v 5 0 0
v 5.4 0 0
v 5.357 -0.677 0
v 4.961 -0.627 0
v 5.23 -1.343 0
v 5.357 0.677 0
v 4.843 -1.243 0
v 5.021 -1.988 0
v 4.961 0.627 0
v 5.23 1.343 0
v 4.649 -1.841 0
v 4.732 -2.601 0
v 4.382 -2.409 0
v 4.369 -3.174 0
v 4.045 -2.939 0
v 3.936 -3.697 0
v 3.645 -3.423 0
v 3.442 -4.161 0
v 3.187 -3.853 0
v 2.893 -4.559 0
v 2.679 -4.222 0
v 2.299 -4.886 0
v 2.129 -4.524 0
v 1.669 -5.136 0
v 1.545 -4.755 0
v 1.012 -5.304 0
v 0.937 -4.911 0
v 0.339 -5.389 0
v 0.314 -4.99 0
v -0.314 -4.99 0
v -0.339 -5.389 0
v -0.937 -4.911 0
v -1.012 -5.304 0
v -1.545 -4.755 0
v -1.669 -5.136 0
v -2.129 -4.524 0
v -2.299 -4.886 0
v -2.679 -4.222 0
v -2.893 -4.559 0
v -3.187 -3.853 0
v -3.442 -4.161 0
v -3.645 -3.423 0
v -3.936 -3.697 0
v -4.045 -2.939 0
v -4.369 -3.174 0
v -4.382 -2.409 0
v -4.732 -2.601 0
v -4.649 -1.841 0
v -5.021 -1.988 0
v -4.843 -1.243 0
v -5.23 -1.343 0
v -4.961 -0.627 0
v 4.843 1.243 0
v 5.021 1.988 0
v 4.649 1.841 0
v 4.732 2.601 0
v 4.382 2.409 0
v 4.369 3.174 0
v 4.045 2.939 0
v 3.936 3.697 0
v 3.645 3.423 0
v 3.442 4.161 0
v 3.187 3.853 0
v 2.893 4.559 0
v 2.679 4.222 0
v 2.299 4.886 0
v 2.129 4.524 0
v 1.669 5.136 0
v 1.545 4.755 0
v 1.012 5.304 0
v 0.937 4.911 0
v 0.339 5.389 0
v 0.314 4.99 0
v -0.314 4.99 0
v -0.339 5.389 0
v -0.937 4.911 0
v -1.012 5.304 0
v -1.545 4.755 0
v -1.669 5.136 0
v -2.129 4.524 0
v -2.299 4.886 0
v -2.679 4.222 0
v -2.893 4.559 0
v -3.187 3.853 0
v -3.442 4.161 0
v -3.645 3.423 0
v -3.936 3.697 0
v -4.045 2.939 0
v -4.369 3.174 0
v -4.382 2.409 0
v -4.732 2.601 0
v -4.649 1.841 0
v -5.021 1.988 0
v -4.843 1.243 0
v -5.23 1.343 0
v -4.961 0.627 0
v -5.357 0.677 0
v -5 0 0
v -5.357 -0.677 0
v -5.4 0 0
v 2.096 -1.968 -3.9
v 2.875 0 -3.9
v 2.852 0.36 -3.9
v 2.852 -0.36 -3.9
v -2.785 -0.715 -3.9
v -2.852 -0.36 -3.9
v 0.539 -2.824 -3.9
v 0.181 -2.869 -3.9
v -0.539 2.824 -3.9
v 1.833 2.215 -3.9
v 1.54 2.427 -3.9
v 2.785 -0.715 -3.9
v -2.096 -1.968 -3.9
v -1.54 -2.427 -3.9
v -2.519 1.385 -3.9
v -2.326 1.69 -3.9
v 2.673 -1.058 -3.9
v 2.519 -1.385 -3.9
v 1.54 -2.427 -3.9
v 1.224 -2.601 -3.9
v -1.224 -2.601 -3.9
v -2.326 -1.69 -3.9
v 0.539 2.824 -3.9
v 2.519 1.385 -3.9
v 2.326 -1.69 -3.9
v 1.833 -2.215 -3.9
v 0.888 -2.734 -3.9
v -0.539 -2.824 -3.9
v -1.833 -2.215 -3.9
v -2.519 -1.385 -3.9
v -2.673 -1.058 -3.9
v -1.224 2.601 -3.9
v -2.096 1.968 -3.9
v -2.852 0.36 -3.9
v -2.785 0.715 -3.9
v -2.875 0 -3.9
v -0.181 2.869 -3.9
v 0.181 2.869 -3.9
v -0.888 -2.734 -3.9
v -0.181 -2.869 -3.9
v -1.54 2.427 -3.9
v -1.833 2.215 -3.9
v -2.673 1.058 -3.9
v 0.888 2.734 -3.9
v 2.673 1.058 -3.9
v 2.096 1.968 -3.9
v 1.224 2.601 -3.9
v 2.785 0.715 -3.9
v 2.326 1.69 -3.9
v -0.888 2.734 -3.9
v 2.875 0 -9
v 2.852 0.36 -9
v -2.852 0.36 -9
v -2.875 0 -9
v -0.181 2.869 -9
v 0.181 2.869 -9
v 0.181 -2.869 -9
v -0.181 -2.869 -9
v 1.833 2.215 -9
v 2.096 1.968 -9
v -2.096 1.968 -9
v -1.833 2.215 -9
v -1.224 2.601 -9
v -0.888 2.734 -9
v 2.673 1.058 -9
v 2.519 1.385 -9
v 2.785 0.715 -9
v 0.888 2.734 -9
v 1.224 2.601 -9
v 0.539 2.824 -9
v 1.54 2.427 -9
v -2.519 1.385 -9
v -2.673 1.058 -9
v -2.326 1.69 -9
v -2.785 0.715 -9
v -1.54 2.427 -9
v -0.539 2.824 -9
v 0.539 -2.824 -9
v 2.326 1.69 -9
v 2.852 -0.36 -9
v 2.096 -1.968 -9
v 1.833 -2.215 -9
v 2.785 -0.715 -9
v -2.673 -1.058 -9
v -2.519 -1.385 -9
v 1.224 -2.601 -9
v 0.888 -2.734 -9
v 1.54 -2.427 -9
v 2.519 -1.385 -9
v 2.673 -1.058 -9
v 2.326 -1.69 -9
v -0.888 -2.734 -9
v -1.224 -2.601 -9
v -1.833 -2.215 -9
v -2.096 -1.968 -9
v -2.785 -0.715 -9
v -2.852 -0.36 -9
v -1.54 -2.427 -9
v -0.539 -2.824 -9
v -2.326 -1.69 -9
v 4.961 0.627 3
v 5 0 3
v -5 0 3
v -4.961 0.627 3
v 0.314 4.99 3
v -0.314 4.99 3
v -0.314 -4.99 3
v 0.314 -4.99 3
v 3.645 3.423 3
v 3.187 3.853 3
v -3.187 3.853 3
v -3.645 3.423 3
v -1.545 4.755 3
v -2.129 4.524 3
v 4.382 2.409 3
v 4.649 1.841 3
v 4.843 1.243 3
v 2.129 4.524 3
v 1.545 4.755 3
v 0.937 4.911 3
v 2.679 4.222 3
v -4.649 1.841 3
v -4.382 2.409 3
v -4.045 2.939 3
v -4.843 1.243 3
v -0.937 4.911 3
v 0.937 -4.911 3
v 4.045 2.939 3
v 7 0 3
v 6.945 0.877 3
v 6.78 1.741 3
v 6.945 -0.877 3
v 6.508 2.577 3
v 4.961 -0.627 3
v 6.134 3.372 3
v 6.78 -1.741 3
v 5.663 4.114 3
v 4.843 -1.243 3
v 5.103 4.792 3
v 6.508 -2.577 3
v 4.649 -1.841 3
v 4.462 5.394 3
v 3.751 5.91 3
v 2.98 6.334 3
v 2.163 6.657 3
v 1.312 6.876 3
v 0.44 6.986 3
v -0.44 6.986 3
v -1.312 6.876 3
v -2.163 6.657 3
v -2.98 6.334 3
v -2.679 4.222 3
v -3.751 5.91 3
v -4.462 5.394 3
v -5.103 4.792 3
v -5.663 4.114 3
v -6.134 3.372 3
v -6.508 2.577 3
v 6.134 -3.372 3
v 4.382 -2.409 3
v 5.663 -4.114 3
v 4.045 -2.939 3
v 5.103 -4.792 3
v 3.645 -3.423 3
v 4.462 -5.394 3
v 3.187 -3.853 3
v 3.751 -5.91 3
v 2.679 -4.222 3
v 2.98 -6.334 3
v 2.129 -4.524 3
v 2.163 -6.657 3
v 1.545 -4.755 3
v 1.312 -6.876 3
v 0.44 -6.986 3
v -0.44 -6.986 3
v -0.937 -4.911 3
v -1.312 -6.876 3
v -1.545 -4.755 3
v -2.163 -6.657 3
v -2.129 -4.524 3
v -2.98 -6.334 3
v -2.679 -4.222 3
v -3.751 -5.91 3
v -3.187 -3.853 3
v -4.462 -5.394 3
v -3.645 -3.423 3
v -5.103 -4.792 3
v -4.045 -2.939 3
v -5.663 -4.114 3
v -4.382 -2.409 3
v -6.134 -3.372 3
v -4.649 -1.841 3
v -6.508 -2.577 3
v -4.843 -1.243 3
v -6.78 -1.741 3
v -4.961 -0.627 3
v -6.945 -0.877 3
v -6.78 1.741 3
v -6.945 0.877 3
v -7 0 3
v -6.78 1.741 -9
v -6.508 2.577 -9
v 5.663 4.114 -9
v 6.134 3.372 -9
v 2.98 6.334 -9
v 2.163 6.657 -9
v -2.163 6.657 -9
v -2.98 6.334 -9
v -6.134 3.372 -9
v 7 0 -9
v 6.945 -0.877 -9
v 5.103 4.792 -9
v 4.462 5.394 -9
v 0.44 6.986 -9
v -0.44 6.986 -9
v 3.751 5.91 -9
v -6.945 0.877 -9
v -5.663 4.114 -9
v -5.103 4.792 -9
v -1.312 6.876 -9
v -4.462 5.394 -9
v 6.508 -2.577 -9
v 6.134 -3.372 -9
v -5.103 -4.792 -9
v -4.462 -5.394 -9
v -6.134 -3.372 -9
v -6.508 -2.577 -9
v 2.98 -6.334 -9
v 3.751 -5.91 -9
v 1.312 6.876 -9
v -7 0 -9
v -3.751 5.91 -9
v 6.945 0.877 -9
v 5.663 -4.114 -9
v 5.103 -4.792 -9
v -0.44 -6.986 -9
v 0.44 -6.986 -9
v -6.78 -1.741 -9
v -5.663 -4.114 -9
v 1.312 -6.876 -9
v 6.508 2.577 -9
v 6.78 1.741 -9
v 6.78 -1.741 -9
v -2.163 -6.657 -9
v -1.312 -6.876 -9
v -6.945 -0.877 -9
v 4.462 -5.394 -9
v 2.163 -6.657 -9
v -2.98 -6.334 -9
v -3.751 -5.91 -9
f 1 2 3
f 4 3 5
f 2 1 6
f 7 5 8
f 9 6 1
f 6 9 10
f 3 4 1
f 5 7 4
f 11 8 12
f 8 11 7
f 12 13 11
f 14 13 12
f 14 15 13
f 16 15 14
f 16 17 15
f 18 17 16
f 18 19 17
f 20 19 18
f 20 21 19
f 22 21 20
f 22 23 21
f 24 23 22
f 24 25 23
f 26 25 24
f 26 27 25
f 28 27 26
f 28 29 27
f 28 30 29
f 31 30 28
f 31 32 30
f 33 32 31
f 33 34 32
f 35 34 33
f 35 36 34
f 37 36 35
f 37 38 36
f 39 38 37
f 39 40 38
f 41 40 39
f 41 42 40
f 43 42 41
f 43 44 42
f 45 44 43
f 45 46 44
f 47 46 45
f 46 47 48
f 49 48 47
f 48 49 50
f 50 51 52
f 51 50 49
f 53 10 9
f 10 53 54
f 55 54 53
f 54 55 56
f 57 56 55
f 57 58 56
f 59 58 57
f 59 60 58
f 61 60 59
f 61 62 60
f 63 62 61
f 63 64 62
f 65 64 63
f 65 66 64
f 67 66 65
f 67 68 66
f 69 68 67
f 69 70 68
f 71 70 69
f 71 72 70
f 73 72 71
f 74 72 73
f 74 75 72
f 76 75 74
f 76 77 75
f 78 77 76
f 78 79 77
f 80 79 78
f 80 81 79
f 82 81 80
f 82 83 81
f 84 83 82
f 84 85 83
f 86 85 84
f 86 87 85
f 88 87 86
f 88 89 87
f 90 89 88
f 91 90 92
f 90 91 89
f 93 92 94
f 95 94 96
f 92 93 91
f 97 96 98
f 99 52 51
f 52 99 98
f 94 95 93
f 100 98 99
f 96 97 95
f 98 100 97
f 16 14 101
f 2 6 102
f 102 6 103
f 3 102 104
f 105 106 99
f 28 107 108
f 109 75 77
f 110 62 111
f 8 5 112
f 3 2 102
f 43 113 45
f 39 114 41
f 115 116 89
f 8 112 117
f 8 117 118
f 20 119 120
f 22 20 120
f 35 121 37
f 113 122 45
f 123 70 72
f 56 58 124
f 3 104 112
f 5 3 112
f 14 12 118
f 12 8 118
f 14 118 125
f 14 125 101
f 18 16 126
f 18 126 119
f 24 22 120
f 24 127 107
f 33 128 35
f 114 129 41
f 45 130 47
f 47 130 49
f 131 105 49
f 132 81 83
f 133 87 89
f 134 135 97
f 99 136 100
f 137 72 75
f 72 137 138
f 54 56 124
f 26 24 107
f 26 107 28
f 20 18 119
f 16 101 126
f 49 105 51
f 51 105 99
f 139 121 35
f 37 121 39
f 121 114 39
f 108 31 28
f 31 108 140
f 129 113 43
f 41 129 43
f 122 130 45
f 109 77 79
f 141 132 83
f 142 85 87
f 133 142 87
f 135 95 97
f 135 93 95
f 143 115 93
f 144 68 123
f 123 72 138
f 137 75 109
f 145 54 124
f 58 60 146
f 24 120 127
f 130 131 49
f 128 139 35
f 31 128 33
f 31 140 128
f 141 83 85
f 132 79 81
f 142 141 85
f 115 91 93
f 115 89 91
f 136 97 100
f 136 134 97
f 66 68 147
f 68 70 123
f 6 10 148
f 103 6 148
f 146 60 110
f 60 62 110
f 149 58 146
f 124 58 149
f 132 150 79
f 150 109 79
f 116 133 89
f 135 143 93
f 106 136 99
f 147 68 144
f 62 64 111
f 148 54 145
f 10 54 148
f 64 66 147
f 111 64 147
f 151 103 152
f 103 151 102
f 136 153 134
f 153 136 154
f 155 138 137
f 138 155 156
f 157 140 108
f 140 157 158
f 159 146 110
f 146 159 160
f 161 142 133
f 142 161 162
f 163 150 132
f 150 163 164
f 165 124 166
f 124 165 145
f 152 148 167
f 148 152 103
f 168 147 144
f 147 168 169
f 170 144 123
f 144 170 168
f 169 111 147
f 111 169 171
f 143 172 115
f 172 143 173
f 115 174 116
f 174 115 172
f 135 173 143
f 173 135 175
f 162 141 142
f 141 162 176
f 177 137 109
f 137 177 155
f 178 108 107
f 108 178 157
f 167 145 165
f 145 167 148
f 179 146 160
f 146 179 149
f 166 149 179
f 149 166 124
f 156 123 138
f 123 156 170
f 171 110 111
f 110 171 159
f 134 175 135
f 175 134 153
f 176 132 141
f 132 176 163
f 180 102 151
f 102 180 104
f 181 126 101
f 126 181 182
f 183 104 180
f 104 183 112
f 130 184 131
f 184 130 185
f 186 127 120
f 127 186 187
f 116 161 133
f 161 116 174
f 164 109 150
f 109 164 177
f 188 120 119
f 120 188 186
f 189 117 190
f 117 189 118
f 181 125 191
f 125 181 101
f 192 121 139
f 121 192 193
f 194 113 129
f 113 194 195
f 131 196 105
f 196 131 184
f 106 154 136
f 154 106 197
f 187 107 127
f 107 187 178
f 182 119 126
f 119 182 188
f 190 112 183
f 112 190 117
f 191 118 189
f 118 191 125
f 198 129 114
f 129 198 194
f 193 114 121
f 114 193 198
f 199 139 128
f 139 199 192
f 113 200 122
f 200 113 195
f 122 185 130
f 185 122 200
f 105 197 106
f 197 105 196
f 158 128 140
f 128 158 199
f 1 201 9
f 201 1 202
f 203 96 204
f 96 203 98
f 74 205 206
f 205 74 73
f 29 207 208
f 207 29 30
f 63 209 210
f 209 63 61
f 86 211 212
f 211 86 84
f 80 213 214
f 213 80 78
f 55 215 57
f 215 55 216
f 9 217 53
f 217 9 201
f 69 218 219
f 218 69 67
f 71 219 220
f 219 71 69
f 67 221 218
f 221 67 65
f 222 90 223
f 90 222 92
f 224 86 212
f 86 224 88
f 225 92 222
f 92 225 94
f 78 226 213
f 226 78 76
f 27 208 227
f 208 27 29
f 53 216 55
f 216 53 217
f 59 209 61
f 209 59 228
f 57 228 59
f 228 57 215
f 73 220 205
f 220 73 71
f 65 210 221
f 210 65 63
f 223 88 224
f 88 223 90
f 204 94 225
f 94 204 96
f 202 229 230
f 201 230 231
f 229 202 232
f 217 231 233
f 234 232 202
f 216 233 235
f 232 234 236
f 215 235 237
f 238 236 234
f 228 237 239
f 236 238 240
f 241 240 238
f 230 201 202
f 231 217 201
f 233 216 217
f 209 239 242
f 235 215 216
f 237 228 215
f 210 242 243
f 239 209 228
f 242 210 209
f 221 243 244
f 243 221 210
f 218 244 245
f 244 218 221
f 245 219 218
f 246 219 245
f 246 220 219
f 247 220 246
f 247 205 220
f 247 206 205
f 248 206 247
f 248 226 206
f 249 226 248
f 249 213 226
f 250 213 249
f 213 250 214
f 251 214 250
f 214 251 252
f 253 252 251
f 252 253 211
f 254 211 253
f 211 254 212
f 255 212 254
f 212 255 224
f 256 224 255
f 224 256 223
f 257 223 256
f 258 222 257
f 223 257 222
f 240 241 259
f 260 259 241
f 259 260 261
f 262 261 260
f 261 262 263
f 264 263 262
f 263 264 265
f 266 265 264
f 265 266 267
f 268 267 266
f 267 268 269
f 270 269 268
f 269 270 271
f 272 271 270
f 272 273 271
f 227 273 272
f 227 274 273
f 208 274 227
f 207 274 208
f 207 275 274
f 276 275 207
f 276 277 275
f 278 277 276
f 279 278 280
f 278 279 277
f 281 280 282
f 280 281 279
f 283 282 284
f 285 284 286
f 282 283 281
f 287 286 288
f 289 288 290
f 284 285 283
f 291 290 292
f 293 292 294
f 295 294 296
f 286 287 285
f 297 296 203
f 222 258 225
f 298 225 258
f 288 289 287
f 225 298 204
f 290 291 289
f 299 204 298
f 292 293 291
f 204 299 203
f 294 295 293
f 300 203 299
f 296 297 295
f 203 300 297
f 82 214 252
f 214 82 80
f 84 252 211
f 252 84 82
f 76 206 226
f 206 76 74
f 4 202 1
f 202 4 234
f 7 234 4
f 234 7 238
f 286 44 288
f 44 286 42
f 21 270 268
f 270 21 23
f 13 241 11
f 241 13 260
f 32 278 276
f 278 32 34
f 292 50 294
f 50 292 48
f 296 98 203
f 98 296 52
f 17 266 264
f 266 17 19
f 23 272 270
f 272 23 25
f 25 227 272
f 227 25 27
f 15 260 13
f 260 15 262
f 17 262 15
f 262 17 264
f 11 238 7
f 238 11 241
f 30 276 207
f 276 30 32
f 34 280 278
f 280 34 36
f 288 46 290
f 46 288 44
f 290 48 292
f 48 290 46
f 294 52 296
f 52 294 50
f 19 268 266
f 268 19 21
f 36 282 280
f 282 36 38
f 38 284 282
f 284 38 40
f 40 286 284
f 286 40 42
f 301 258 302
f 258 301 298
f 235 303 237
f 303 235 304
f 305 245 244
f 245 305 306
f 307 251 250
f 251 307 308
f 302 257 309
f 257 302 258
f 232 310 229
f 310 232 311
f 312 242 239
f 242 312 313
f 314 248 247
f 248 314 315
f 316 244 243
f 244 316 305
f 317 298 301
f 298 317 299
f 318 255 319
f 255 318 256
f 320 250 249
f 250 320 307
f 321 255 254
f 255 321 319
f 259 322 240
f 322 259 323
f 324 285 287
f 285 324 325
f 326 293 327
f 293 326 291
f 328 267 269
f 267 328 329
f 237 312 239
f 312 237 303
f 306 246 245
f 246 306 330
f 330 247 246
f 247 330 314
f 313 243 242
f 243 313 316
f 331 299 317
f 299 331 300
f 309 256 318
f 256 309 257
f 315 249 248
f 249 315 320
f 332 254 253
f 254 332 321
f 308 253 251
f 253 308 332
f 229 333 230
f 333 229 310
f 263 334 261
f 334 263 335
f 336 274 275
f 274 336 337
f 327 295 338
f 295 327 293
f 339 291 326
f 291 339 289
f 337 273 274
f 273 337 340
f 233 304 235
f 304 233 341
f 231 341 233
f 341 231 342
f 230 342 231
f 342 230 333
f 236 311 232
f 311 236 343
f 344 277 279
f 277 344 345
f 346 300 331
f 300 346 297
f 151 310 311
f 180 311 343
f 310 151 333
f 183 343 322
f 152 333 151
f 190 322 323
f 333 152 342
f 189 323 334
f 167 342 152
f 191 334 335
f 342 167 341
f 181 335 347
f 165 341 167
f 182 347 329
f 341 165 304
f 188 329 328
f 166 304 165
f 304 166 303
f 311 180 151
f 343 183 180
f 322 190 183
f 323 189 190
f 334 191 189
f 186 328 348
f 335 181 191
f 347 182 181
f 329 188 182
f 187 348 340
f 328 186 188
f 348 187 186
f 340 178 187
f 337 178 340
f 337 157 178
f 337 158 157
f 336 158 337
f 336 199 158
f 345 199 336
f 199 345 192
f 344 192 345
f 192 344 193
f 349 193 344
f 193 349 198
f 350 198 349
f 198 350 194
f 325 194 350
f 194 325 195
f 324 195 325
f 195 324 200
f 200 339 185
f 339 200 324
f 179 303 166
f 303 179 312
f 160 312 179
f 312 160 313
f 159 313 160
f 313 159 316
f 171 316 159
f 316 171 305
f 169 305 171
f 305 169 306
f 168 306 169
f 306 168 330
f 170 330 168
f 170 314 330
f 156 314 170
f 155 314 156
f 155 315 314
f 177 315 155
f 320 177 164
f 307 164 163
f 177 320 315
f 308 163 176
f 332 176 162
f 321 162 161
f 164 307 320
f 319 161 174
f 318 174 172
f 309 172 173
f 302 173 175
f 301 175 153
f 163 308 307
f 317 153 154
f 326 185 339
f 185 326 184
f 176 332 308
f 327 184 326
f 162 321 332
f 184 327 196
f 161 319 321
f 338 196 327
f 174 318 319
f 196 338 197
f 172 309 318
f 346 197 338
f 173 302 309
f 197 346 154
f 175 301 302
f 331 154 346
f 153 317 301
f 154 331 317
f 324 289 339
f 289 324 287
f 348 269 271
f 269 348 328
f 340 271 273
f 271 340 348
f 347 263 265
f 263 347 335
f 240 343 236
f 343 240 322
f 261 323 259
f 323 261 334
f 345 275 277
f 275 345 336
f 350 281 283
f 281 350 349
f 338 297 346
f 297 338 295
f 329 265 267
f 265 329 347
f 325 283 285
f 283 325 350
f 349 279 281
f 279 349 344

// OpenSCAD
$fn = 50;

difference() {
	union() {
		translate(v = [0, 0, -9.0]) {
			cylinder(h = 12, r = 7.0);
		}
	}
	union() {
		translate(v = [0, 0, 0]) {
			rotate(a = [0, 0, 0]) {
				difference() {
					union() {
						translate(v = [0, 0, -12.0]) {
							cylinder(h = 12, r = 2.6);
						}
						translate(v = [0, 0, -3.9]) {
							cylinder(h = 3.9, r1 = 2.875, r2 = 5.4);
						}
						translate(v = [0, 0, -12.0]) {
							cylinder(h = 12, r = 2.875);
						}
						translate(v = [0, 0, -12.0]) {
							cylinder(h = 12, r = 2.6);
						}
					}
					union();
				}
			}
		}
		#cylinder(h = 3, r = 5.0);
	}
}
